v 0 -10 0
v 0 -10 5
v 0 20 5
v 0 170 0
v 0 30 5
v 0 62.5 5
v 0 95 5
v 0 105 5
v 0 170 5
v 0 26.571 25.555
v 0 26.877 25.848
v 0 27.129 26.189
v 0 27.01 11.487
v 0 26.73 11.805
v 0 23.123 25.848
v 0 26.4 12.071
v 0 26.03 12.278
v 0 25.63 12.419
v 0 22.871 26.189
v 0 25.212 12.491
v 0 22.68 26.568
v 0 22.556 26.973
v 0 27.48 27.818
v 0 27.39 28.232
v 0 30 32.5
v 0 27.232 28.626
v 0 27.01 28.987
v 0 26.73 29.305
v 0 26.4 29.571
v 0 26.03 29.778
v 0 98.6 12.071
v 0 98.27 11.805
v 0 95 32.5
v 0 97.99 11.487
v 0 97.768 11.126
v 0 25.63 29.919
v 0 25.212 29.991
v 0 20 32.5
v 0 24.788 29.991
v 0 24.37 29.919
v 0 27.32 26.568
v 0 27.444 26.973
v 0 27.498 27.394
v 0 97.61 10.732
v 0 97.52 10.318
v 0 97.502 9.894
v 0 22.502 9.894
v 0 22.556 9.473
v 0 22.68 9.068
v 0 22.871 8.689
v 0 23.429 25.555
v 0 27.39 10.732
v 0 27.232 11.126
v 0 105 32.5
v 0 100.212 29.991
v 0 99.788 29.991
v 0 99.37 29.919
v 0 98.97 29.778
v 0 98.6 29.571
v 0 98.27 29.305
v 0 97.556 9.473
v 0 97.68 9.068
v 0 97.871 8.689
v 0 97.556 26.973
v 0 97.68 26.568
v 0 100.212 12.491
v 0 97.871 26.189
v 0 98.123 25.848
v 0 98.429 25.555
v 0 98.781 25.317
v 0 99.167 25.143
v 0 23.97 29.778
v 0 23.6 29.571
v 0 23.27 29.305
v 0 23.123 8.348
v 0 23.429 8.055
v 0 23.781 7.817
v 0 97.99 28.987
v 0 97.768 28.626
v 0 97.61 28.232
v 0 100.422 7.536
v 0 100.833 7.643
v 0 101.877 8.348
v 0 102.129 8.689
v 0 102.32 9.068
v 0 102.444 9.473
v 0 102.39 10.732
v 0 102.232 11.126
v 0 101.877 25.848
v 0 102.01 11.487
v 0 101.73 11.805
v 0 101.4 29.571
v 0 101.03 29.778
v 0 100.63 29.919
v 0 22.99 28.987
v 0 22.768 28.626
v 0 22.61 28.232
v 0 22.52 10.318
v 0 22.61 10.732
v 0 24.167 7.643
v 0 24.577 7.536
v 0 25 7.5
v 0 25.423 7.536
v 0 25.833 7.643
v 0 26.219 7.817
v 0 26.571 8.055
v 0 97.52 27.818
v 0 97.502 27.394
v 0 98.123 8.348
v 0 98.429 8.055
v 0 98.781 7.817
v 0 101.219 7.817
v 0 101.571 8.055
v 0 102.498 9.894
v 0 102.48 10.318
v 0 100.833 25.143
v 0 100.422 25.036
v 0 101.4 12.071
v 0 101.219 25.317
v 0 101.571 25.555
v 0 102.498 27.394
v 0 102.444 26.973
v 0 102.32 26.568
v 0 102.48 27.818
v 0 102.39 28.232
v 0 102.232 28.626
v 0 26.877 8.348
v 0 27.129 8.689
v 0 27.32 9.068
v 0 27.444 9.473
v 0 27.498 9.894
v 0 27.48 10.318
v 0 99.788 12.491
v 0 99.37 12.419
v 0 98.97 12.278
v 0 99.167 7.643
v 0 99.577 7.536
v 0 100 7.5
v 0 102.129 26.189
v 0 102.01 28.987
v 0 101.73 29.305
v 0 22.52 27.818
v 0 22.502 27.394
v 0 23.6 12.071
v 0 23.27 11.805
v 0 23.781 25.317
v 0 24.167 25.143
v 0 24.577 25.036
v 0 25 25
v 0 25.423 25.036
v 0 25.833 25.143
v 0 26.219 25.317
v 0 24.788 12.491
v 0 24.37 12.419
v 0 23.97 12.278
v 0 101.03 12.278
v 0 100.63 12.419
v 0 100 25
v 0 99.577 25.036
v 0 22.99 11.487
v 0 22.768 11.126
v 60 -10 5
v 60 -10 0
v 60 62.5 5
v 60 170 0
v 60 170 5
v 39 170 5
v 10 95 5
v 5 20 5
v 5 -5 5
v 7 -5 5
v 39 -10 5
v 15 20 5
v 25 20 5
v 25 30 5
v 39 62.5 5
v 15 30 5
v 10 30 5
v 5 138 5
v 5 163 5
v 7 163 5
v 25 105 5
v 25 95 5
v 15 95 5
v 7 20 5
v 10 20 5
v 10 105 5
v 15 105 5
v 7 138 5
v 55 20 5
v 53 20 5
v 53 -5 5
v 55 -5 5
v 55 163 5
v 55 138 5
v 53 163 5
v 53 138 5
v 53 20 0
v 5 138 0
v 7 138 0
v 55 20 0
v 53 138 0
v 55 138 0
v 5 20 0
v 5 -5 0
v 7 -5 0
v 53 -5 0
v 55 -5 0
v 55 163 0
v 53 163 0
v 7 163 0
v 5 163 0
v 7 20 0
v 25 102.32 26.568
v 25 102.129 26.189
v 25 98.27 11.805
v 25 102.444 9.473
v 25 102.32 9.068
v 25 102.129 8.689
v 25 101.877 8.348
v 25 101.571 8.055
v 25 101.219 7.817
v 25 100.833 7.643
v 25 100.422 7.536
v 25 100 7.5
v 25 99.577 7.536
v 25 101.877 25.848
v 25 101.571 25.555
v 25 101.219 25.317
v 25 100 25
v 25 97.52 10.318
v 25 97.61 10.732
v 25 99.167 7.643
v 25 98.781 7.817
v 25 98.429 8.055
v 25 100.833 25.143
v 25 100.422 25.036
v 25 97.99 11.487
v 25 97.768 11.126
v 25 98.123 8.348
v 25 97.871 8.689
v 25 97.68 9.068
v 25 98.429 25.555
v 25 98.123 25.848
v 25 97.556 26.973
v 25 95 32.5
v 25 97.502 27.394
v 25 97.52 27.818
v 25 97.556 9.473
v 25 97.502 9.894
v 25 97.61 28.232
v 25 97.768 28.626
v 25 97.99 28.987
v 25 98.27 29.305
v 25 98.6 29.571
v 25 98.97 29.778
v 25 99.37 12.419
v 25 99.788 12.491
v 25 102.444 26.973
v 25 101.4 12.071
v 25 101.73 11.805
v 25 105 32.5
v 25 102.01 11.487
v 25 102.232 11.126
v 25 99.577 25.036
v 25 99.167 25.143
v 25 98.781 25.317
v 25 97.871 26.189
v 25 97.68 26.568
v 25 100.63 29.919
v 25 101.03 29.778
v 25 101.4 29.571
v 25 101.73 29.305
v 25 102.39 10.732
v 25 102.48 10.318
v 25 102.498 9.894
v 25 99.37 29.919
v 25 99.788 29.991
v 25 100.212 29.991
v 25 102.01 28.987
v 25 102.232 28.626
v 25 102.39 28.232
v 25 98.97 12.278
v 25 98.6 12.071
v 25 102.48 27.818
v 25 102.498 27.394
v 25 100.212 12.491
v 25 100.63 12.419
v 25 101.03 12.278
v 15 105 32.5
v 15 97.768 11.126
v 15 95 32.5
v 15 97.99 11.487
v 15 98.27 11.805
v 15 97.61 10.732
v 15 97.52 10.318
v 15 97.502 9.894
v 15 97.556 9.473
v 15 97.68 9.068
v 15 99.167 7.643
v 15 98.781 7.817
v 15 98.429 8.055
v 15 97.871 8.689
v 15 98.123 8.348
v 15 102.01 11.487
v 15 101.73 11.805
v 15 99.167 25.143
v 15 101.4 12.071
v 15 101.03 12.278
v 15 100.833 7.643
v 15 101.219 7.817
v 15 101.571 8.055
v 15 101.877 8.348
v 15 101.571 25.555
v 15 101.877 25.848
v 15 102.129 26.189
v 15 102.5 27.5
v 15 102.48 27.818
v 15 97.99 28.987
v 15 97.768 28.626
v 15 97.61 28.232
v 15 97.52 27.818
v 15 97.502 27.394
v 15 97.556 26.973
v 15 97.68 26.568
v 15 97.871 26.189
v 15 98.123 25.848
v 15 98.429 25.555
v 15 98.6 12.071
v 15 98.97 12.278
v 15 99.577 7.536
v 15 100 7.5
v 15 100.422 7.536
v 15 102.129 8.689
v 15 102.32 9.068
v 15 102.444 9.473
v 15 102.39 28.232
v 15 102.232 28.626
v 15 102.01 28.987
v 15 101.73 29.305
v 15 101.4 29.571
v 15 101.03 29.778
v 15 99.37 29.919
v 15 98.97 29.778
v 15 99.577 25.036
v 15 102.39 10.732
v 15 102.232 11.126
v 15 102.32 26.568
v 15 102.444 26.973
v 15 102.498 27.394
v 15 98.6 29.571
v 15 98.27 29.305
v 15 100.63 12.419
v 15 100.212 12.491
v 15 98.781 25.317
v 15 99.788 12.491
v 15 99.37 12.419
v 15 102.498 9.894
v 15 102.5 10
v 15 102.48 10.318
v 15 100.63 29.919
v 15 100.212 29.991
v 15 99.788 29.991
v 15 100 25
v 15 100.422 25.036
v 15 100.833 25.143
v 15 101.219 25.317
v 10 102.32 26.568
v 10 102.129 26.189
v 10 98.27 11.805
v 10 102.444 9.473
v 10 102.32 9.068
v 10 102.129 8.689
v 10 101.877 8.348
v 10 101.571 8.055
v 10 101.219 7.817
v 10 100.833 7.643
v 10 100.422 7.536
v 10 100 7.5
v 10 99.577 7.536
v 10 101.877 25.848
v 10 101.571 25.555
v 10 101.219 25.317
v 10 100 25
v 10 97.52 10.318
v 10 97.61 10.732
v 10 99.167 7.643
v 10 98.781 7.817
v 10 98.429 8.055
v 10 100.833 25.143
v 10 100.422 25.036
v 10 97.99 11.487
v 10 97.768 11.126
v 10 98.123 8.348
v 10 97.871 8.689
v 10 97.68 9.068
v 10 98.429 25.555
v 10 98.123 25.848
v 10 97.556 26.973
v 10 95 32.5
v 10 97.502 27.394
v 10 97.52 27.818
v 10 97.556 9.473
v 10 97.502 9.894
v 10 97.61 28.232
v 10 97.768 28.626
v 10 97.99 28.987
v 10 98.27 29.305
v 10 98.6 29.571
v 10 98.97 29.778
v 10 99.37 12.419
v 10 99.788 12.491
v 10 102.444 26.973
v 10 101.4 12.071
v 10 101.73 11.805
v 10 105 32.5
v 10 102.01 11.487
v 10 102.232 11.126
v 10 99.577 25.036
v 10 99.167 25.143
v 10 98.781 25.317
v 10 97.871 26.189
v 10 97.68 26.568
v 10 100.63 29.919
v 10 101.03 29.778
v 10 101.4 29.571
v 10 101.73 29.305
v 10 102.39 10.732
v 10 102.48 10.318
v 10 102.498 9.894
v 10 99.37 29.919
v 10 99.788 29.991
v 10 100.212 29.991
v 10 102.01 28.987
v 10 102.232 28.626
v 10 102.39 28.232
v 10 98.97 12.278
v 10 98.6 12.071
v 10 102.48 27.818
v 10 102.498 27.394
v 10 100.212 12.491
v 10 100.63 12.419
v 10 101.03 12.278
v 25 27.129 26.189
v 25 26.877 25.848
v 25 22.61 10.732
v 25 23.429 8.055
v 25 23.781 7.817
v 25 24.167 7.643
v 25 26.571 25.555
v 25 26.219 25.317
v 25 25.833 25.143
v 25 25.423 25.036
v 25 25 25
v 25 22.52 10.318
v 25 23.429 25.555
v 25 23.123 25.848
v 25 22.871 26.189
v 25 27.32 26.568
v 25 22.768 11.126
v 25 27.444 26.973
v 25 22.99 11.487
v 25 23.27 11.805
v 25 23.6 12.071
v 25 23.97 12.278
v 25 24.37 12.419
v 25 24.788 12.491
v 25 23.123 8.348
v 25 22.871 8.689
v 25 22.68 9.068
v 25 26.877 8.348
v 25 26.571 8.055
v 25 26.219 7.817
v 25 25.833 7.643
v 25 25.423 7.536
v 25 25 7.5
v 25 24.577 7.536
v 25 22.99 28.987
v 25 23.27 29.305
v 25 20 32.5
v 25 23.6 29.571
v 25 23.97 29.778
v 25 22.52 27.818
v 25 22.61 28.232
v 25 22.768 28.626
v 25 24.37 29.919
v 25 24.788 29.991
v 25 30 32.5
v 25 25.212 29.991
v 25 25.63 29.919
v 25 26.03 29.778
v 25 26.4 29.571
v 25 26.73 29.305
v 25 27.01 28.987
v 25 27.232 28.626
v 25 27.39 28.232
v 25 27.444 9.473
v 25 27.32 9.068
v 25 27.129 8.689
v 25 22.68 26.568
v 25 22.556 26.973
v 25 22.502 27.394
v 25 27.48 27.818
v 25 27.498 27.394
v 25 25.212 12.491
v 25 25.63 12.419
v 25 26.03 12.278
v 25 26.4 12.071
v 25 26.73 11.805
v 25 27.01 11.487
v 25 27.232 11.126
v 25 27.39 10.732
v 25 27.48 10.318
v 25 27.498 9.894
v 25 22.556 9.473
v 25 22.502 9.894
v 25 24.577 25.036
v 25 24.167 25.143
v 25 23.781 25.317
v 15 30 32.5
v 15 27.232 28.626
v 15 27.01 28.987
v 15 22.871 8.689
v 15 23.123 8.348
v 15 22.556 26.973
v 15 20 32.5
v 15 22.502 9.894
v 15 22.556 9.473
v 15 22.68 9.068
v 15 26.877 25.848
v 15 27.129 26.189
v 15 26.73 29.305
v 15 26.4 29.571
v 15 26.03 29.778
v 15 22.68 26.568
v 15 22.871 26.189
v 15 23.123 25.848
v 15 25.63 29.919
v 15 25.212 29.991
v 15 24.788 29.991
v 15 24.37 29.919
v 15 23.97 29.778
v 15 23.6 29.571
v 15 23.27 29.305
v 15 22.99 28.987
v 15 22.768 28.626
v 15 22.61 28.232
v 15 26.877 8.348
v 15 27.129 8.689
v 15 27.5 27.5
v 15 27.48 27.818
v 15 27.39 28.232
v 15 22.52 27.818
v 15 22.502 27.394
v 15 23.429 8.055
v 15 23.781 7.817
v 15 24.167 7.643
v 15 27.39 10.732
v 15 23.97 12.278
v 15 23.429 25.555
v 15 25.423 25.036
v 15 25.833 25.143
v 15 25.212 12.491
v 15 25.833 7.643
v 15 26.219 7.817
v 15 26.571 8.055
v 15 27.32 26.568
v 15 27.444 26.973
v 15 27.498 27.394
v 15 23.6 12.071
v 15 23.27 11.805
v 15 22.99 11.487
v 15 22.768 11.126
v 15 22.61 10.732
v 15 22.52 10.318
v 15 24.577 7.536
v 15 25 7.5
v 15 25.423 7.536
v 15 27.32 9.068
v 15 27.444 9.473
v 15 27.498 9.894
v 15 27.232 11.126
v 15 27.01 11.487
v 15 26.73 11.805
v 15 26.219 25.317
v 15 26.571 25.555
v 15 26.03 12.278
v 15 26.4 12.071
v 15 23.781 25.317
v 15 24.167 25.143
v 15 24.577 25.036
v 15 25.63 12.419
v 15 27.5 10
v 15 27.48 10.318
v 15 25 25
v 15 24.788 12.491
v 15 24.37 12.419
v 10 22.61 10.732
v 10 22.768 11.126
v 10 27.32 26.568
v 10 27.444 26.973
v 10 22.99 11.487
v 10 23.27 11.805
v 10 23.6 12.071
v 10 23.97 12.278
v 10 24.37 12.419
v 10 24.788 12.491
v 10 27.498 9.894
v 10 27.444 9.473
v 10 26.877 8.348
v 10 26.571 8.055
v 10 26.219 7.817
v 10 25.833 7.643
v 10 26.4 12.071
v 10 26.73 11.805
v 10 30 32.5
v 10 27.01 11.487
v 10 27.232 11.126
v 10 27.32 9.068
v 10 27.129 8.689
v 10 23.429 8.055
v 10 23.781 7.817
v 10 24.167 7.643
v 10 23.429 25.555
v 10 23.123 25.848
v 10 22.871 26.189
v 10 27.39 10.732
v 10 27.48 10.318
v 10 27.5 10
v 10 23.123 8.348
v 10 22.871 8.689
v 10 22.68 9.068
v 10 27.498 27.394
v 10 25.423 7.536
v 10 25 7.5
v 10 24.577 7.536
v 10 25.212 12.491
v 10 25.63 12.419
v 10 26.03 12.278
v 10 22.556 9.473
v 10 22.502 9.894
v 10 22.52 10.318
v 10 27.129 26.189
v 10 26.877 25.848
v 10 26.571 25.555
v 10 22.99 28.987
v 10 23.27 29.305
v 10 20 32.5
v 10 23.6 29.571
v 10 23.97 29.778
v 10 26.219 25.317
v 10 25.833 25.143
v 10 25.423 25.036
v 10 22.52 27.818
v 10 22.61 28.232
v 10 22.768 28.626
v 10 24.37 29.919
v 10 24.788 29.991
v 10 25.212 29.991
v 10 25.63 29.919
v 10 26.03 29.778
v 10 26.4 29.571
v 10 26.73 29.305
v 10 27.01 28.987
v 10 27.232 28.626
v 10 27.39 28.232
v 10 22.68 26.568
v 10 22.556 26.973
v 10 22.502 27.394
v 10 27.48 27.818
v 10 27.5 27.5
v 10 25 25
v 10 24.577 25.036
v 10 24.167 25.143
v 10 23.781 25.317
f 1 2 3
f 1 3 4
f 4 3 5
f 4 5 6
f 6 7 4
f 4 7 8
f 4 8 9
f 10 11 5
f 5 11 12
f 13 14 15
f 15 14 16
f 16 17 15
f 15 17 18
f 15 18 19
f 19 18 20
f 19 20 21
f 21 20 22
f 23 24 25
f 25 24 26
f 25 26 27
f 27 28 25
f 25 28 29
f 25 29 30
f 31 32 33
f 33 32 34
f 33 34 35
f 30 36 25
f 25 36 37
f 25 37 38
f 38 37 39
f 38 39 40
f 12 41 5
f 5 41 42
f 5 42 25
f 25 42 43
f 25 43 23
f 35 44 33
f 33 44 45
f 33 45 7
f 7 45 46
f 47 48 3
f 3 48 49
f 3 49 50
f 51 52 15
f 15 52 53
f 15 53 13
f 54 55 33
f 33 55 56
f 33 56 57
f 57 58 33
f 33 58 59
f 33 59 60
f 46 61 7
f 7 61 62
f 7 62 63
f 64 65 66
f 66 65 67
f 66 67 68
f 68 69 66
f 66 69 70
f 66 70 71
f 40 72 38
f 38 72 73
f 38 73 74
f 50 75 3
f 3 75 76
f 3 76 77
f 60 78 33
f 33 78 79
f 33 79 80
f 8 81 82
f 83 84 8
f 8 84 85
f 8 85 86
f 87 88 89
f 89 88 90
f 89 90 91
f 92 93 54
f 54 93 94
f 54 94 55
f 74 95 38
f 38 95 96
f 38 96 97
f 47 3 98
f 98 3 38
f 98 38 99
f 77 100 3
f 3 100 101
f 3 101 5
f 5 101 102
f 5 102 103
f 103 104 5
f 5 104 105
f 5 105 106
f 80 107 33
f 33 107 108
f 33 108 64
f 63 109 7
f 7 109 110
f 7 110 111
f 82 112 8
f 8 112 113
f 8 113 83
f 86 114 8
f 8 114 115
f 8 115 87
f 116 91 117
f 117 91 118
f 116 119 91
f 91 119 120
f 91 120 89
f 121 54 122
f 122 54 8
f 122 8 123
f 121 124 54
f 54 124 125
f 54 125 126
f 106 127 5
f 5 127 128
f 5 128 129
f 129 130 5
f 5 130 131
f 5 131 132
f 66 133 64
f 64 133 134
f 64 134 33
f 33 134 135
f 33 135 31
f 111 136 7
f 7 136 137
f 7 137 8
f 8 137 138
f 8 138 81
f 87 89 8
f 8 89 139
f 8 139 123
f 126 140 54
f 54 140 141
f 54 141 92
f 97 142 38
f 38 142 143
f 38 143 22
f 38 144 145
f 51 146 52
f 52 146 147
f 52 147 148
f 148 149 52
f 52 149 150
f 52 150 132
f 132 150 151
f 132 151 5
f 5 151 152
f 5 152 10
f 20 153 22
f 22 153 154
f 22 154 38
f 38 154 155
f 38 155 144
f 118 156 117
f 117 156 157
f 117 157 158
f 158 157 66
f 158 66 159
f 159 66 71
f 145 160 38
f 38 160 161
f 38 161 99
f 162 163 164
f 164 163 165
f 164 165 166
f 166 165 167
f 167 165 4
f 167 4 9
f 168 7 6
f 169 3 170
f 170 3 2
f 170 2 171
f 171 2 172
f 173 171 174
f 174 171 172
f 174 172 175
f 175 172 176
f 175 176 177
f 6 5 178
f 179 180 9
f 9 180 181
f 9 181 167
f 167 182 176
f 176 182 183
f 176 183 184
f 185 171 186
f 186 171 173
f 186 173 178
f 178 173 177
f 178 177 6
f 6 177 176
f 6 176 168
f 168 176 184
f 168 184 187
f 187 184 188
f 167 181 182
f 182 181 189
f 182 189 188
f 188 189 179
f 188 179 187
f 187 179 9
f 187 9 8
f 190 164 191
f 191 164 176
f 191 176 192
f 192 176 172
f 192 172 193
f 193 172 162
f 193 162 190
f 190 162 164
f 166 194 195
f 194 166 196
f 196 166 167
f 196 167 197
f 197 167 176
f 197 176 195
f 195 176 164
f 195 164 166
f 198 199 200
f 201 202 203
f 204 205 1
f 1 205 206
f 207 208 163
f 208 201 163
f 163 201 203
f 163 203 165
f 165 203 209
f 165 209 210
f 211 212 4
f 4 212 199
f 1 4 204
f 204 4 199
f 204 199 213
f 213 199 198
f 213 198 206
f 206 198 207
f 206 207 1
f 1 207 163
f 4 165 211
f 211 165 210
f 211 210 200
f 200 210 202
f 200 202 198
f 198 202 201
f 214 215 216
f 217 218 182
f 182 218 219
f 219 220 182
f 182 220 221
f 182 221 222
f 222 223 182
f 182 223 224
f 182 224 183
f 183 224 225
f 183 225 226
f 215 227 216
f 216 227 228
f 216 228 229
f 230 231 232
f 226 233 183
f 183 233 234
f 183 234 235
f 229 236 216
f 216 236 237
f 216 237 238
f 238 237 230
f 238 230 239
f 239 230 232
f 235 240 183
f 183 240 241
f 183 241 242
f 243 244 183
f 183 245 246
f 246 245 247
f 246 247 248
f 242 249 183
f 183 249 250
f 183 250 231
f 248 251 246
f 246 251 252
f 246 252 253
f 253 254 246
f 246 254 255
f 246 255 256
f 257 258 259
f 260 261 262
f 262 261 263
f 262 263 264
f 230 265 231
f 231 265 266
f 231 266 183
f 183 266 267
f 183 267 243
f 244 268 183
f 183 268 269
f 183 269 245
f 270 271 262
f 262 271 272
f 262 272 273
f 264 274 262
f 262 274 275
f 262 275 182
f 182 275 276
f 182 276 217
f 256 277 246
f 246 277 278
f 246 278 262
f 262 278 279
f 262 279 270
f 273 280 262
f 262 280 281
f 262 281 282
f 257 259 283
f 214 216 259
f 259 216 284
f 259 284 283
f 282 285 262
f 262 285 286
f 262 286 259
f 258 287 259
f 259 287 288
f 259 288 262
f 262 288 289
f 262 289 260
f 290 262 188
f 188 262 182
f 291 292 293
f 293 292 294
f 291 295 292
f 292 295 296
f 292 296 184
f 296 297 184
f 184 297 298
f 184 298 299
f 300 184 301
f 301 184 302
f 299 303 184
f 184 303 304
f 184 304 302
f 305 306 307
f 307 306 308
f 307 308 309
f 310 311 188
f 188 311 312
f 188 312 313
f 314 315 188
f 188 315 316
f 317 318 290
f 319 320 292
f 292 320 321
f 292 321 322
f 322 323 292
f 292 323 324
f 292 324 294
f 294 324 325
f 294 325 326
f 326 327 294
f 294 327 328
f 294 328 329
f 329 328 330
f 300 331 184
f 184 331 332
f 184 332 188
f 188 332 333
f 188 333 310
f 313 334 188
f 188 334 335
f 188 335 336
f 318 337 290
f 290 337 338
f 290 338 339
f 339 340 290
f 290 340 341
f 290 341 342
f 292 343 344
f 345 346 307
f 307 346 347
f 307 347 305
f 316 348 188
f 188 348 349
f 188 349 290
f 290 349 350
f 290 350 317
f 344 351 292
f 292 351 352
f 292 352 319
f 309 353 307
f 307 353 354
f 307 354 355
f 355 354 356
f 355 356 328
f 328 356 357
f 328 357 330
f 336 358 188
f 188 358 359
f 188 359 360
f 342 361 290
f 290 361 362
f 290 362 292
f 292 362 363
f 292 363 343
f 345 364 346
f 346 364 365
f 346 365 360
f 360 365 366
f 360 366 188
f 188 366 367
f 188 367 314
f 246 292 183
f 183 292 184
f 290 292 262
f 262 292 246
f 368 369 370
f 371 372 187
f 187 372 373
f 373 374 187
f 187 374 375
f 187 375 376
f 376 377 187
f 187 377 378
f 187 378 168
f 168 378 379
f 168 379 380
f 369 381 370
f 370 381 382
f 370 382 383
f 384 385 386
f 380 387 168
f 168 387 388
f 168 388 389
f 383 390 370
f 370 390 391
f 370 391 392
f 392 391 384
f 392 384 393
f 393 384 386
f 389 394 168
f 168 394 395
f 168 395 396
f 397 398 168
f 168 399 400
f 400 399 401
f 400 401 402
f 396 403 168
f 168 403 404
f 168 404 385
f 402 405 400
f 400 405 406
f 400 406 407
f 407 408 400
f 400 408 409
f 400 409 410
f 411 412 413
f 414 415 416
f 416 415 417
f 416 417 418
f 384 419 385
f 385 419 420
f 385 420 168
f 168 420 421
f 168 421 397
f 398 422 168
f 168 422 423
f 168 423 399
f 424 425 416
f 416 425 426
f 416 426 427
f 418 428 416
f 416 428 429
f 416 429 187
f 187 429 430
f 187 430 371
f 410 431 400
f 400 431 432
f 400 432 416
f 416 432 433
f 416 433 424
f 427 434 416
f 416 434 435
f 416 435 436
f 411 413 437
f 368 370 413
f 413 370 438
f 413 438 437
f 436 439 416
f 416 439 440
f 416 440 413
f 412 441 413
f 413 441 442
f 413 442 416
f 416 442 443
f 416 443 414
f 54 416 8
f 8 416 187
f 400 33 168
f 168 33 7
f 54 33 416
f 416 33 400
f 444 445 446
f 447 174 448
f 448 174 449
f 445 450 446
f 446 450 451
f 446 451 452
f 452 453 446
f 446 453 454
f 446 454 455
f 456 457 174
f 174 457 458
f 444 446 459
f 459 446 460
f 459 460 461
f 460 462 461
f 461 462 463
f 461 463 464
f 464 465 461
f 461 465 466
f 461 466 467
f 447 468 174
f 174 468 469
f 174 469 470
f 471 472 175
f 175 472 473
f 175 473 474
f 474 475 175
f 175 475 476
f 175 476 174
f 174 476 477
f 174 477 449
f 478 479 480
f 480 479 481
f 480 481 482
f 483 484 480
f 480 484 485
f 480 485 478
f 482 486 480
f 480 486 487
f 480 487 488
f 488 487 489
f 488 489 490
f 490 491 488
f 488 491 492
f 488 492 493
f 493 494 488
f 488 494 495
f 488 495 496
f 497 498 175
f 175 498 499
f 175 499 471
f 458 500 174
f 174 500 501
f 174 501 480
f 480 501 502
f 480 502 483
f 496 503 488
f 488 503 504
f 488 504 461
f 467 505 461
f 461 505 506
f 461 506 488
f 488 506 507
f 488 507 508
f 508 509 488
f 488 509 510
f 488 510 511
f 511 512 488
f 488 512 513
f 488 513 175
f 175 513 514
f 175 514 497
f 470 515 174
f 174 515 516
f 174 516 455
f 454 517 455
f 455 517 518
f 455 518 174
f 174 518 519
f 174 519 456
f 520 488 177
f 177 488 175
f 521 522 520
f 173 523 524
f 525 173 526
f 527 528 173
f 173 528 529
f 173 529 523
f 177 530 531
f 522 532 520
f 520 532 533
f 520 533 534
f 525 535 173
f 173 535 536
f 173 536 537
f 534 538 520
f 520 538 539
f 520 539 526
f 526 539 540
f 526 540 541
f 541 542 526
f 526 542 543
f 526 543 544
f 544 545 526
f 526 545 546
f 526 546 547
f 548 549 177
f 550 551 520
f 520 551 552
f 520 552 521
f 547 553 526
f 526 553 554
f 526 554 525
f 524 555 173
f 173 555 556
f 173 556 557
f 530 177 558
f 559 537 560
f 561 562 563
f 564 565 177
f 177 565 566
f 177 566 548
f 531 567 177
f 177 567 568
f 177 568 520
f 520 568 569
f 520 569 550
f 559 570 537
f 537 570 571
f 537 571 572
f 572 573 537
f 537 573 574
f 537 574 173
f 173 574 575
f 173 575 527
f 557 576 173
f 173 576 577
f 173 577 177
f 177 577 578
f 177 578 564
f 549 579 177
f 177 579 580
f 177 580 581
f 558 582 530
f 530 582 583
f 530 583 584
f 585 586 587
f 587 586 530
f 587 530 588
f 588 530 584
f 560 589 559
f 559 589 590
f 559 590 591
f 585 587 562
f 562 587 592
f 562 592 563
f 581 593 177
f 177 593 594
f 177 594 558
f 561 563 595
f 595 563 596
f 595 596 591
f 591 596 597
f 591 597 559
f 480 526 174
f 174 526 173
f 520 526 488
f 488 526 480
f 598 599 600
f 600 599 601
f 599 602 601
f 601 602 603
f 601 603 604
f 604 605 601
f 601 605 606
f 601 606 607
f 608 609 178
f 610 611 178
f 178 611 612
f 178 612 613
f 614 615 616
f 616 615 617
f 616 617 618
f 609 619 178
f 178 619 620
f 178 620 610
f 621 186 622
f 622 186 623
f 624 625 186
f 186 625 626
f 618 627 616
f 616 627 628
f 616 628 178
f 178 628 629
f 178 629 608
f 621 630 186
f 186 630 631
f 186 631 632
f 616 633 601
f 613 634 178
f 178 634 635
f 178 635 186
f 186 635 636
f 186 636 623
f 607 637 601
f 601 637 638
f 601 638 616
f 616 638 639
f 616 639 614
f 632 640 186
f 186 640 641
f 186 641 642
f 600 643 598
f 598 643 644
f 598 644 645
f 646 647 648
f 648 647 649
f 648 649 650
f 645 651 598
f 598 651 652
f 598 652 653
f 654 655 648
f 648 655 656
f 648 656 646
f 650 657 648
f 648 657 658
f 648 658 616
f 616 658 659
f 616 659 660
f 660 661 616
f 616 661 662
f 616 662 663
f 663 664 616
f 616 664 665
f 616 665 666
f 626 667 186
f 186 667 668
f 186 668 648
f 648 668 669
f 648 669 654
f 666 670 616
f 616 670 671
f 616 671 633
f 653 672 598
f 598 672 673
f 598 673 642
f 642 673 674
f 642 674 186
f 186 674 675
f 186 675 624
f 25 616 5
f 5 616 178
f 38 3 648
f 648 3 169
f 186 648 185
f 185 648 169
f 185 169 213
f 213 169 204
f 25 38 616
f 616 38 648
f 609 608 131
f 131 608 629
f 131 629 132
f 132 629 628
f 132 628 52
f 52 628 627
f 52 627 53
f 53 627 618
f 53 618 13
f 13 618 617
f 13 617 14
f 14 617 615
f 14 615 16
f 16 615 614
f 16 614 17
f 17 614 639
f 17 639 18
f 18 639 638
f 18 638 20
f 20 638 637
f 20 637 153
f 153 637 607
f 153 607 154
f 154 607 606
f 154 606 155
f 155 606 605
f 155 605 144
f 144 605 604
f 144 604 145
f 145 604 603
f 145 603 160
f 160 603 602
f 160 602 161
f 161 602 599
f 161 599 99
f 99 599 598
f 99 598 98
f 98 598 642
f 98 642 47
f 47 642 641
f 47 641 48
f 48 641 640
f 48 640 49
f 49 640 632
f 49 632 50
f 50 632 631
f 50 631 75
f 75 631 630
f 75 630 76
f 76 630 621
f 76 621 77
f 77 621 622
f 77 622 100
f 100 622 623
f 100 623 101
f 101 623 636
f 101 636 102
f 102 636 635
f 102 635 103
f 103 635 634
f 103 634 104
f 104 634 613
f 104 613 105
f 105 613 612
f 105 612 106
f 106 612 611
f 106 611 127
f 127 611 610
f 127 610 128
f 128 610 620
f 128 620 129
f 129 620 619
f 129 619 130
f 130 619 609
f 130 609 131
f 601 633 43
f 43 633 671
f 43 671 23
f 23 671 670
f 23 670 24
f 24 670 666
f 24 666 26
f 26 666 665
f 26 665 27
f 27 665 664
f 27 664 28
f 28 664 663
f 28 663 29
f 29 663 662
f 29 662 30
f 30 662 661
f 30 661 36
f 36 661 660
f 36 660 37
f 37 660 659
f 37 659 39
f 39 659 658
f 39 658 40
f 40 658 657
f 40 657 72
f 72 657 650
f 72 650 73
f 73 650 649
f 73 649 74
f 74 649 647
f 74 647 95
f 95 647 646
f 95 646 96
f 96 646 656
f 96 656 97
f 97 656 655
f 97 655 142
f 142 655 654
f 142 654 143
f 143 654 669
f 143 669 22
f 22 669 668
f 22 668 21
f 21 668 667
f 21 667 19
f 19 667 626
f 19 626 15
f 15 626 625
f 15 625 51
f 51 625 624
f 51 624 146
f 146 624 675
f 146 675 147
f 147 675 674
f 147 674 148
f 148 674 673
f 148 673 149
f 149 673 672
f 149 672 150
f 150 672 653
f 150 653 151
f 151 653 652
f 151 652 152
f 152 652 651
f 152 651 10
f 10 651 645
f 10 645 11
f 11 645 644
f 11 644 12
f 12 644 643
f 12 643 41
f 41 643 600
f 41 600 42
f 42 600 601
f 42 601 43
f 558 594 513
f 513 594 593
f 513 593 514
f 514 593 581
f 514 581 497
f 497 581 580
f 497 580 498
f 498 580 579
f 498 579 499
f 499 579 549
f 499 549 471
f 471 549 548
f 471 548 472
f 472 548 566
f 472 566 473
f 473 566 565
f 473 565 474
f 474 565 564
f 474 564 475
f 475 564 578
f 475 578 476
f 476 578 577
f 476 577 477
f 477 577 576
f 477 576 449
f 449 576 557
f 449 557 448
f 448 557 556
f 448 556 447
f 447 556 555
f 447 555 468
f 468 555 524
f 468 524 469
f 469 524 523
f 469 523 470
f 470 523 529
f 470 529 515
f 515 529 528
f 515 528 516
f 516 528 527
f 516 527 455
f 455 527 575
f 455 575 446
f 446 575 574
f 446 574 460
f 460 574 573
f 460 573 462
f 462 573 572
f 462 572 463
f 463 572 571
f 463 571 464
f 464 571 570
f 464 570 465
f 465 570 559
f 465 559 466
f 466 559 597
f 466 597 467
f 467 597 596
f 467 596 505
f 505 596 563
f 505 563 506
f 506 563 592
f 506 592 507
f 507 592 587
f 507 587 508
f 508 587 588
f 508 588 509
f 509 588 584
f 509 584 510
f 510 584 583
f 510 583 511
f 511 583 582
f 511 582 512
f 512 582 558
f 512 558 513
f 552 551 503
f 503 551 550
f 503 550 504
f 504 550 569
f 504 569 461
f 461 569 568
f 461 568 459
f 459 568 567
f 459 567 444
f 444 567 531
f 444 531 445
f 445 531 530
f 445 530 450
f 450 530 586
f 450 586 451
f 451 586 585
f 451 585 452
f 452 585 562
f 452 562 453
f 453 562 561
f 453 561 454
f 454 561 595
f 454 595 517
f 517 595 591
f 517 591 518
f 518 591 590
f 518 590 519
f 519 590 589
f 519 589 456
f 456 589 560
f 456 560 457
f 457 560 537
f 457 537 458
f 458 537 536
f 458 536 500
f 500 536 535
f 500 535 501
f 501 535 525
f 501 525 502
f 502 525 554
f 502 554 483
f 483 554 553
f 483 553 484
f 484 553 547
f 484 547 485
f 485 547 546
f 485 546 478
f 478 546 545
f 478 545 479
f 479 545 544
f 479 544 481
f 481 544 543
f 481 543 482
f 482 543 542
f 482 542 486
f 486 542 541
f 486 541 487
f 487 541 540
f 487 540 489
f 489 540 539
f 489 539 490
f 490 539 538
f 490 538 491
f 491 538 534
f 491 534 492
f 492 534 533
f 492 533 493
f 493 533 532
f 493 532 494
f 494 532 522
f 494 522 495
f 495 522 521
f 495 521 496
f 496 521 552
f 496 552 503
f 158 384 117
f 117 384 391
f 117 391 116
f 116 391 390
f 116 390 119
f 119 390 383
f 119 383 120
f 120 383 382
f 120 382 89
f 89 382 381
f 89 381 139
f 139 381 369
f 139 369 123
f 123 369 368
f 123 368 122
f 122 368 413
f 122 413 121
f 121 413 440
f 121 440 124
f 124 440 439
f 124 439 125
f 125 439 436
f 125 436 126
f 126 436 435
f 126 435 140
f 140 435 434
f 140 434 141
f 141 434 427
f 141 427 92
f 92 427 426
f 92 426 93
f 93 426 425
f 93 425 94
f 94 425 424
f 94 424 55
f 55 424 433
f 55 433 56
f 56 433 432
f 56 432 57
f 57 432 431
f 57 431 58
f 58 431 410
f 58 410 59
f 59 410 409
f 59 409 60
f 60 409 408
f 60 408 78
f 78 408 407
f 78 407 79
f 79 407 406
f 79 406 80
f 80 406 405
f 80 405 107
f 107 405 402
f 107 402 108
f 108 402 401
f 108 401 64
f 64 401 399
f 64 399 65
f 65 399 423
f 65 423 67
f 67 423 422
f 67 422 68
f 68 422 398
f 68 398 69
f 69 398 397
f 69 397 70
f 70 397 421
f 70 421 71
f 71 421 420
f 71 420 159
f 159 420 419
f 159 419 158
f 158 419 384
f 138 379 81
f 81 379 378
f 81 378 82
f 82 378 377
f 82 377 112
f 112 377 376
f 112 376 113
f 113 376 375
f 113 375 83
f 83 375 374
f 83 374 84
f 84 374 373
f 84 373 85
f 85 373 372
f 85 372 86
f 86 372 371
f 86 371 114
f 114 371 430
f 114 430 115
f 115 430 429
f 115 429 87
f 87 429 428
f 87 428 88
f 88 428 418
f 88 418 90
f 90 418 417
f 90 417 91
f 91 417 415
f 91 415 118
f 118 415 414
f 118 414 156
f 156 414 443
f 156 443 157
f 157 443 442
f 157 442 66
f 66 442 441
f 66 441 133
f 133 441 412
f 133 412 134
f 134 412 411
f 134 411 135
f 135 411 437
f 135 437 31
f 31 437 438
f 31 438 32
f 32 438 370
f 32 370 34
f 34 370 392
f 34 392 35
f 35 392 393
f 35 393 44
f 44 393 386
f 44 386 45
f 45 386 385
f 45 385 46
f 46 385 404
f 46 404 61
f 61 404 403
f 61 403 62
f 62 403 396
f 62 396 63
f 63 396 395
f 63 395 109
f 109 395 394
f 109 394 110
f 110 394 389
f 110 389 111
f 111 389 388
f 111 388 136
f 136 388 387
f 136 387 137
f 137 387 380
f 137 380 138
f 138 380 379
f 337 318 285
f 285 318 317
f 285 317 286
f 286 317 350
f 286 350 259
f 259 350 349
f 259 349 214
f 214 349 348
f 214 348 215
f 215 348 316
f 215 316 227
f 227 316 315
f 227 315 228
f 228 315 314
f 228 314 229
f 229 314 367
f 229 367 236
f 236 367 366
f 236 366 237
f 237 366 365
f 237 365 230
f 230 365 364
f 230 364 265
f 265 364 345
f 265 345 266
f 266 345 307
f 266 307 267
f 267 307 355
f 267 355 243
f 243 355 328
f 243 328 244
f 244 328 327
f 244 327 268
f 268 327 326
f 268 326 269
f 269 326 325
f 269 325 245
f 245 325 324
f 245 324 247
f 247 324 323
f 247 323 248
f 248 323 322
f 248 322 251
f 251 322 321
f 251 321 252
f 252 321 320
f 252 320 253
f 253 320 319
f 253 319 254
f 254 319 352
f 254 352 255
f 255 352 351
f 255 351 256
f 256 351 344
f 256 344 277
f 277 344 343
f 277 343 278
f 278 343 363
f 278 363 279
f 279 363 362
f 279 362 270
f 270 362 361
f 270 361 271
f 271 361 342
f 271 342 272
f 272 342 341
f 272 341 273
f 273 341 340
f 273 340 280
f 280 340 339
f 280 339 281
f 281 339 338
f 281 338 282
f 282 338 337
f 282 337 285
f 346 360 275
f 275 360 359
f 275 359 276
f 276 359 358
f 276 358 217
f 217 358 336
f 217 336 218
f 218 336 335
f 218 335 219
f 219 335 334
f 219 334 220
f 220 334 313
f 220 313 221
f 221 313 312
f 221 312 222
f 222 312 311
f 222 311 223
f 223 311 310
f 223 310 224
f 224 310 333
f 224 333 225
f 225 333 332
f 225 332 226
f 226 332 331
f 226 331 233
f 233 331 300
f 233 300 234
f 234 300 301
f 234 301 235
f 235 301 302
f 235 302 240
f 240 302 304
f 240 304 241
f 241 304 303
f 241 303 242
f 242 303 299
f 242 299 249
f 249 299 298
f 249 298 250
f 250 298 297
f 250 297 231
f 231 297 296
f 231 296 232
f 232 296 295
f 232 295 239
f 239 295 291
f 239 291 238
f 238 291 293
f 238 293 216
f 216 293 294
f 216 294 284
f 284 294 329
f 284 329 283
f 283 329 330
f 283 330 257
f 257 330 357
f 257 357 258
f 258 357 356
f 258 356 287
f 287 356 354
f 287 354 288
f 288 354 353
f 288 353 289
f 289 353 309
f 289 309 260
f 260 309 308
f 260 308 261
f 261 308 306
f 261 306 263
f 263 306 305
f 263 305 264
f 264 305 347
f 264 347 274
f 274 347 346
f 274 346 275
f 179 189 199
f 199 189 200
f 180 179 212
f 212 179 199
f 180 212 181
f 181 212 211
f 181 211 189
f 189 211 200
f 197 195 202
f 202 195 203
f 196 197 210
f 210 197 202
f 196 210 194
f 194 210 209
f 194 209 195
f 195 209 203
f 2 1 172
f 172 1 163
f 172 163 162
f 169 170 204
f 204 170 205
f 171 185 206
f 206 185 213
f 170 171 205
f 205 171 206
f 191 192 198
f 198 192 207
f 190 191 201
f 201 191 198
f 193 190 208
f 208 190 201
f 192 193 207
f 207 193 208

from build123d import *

# Parameters (mm, degrees)
CROQUIS1_W              = 60
CROQUIS1_H              = 170
SALIENTE_EXTRUIR1_DEPTH = 5
CROQUIS2_W              = 10
CROQUIS2_H              = 10
SALIENTE_EXTRUIR2_DEPTH = 27.5
CROQUIS3_R              = 2.5
CORTAR_EXTRUIR1_DEPTH   = 27.5
CROQUIS4_W              = 2
CROQUIS4_H              = 25
CORTAR_EXTRUIR2_DEPTH   = 27.5
CROQUIS6_W              = 60
CROQUIS6_H              = 5
SALIENTE_EXTRUIR3_DEPTH = 10
CROQUIS7_W              = 2
CROQUIS7_H              = 25
CORTAR_EXTRUIR3_DEPTH   = 10


with BuildPart() as part:
    # Croquis1 → Saliente-Extruir1 (new body)
    with BuildSketch(Plane.XY):
        with Locations((30, 85)):
            Rectangle(CROQUIS1_W, CROQUIS1_H)
    extrude(amount=SALIENTE_EXTRUIR1_DEPTH)

    # Croquis2 → Saliente-Extruir2 (add)
    with BuildSketch(Plane.XY.offset(5)):
        with Locations((20, 100)):
            Rectangle(CROQUIS2_W, CROQUIS2_H)
        with Locations((5, 100)):
            Rectangle(CROQUIS2_W, CROQUIS2_H)
        with Locations((20, 25)):
            Rectangle(CROQUIS2_W, CROQUIS2_H)
        with Locations((5, 25)):
            Rectangle(CROQUIS2_W, CROQUIS2_H)
    extrude(amount=SALIENTE_EXTRUIR2_DEPTH)

    # Croquis3 → Cortar-Extruir1 (cut)
    with BuildSketch(Plane(origin=(25, 0, 0), x_dir=(0, 0, -1), z_dir=(1, 0, 0))):
        with Locations((-27.5, 100)):
            Circle(CROQUIS3_R)
        with Locations((-10, 100)):
            Circle(CROQUIS3_R)
        with Locations((-27.5, 25)):
            Circle(CROQUIS3_R)
        with Locations((-10, 25)):
            Circle(CROQUIS3_R)
    extrude(amount=-CORTAR_EXTRUIR1_DEPTH, mode=Mode.SUBTRACT)

    # Croquis4 → Cortar-Extruir2 (cut)
    with BuildSketch(Plane.XY.offset(5)):
        with Locations((6, 150.5)):
            Rectangle(CROQUIS4_W, CROQUIS4_H)
        with Locations((54, 150.5)):
            Rectangle(CROQUIS4_W, CROQUIS4_H)
    extrude(amount=-CORTAR_EXTRUIR2_DEPTH, mode=Mode.SUBTRACT)

    # Croquis6 → Saliente-Extruir3 (add)
    with BuildSketch(Plane.XZ):
        with Locations((30, 2.5)):
            Rectangle(CROQUIS6_W, CROQUIS6_H)
    extrude(amount=SALIENTE_EXTRUIR3_DEPTH)

    # Croquis7 → Cortar-Extruir3 (cut)
    with BuildSketch(Plane.XY.offset(5)):
        with Locations((6, 7.5)):
            Rectangle(CROQUIS7_W, CROQUIS7_H)
        with Locations((54, 7.5)):
            Rectangle(CROQUIS7_W, CROQUIS7_H)
    extrude(amount=-CORTAR_EXTRUIR3_DEPTH, mode=Mode.SUBTRACT)


solid = part.part
